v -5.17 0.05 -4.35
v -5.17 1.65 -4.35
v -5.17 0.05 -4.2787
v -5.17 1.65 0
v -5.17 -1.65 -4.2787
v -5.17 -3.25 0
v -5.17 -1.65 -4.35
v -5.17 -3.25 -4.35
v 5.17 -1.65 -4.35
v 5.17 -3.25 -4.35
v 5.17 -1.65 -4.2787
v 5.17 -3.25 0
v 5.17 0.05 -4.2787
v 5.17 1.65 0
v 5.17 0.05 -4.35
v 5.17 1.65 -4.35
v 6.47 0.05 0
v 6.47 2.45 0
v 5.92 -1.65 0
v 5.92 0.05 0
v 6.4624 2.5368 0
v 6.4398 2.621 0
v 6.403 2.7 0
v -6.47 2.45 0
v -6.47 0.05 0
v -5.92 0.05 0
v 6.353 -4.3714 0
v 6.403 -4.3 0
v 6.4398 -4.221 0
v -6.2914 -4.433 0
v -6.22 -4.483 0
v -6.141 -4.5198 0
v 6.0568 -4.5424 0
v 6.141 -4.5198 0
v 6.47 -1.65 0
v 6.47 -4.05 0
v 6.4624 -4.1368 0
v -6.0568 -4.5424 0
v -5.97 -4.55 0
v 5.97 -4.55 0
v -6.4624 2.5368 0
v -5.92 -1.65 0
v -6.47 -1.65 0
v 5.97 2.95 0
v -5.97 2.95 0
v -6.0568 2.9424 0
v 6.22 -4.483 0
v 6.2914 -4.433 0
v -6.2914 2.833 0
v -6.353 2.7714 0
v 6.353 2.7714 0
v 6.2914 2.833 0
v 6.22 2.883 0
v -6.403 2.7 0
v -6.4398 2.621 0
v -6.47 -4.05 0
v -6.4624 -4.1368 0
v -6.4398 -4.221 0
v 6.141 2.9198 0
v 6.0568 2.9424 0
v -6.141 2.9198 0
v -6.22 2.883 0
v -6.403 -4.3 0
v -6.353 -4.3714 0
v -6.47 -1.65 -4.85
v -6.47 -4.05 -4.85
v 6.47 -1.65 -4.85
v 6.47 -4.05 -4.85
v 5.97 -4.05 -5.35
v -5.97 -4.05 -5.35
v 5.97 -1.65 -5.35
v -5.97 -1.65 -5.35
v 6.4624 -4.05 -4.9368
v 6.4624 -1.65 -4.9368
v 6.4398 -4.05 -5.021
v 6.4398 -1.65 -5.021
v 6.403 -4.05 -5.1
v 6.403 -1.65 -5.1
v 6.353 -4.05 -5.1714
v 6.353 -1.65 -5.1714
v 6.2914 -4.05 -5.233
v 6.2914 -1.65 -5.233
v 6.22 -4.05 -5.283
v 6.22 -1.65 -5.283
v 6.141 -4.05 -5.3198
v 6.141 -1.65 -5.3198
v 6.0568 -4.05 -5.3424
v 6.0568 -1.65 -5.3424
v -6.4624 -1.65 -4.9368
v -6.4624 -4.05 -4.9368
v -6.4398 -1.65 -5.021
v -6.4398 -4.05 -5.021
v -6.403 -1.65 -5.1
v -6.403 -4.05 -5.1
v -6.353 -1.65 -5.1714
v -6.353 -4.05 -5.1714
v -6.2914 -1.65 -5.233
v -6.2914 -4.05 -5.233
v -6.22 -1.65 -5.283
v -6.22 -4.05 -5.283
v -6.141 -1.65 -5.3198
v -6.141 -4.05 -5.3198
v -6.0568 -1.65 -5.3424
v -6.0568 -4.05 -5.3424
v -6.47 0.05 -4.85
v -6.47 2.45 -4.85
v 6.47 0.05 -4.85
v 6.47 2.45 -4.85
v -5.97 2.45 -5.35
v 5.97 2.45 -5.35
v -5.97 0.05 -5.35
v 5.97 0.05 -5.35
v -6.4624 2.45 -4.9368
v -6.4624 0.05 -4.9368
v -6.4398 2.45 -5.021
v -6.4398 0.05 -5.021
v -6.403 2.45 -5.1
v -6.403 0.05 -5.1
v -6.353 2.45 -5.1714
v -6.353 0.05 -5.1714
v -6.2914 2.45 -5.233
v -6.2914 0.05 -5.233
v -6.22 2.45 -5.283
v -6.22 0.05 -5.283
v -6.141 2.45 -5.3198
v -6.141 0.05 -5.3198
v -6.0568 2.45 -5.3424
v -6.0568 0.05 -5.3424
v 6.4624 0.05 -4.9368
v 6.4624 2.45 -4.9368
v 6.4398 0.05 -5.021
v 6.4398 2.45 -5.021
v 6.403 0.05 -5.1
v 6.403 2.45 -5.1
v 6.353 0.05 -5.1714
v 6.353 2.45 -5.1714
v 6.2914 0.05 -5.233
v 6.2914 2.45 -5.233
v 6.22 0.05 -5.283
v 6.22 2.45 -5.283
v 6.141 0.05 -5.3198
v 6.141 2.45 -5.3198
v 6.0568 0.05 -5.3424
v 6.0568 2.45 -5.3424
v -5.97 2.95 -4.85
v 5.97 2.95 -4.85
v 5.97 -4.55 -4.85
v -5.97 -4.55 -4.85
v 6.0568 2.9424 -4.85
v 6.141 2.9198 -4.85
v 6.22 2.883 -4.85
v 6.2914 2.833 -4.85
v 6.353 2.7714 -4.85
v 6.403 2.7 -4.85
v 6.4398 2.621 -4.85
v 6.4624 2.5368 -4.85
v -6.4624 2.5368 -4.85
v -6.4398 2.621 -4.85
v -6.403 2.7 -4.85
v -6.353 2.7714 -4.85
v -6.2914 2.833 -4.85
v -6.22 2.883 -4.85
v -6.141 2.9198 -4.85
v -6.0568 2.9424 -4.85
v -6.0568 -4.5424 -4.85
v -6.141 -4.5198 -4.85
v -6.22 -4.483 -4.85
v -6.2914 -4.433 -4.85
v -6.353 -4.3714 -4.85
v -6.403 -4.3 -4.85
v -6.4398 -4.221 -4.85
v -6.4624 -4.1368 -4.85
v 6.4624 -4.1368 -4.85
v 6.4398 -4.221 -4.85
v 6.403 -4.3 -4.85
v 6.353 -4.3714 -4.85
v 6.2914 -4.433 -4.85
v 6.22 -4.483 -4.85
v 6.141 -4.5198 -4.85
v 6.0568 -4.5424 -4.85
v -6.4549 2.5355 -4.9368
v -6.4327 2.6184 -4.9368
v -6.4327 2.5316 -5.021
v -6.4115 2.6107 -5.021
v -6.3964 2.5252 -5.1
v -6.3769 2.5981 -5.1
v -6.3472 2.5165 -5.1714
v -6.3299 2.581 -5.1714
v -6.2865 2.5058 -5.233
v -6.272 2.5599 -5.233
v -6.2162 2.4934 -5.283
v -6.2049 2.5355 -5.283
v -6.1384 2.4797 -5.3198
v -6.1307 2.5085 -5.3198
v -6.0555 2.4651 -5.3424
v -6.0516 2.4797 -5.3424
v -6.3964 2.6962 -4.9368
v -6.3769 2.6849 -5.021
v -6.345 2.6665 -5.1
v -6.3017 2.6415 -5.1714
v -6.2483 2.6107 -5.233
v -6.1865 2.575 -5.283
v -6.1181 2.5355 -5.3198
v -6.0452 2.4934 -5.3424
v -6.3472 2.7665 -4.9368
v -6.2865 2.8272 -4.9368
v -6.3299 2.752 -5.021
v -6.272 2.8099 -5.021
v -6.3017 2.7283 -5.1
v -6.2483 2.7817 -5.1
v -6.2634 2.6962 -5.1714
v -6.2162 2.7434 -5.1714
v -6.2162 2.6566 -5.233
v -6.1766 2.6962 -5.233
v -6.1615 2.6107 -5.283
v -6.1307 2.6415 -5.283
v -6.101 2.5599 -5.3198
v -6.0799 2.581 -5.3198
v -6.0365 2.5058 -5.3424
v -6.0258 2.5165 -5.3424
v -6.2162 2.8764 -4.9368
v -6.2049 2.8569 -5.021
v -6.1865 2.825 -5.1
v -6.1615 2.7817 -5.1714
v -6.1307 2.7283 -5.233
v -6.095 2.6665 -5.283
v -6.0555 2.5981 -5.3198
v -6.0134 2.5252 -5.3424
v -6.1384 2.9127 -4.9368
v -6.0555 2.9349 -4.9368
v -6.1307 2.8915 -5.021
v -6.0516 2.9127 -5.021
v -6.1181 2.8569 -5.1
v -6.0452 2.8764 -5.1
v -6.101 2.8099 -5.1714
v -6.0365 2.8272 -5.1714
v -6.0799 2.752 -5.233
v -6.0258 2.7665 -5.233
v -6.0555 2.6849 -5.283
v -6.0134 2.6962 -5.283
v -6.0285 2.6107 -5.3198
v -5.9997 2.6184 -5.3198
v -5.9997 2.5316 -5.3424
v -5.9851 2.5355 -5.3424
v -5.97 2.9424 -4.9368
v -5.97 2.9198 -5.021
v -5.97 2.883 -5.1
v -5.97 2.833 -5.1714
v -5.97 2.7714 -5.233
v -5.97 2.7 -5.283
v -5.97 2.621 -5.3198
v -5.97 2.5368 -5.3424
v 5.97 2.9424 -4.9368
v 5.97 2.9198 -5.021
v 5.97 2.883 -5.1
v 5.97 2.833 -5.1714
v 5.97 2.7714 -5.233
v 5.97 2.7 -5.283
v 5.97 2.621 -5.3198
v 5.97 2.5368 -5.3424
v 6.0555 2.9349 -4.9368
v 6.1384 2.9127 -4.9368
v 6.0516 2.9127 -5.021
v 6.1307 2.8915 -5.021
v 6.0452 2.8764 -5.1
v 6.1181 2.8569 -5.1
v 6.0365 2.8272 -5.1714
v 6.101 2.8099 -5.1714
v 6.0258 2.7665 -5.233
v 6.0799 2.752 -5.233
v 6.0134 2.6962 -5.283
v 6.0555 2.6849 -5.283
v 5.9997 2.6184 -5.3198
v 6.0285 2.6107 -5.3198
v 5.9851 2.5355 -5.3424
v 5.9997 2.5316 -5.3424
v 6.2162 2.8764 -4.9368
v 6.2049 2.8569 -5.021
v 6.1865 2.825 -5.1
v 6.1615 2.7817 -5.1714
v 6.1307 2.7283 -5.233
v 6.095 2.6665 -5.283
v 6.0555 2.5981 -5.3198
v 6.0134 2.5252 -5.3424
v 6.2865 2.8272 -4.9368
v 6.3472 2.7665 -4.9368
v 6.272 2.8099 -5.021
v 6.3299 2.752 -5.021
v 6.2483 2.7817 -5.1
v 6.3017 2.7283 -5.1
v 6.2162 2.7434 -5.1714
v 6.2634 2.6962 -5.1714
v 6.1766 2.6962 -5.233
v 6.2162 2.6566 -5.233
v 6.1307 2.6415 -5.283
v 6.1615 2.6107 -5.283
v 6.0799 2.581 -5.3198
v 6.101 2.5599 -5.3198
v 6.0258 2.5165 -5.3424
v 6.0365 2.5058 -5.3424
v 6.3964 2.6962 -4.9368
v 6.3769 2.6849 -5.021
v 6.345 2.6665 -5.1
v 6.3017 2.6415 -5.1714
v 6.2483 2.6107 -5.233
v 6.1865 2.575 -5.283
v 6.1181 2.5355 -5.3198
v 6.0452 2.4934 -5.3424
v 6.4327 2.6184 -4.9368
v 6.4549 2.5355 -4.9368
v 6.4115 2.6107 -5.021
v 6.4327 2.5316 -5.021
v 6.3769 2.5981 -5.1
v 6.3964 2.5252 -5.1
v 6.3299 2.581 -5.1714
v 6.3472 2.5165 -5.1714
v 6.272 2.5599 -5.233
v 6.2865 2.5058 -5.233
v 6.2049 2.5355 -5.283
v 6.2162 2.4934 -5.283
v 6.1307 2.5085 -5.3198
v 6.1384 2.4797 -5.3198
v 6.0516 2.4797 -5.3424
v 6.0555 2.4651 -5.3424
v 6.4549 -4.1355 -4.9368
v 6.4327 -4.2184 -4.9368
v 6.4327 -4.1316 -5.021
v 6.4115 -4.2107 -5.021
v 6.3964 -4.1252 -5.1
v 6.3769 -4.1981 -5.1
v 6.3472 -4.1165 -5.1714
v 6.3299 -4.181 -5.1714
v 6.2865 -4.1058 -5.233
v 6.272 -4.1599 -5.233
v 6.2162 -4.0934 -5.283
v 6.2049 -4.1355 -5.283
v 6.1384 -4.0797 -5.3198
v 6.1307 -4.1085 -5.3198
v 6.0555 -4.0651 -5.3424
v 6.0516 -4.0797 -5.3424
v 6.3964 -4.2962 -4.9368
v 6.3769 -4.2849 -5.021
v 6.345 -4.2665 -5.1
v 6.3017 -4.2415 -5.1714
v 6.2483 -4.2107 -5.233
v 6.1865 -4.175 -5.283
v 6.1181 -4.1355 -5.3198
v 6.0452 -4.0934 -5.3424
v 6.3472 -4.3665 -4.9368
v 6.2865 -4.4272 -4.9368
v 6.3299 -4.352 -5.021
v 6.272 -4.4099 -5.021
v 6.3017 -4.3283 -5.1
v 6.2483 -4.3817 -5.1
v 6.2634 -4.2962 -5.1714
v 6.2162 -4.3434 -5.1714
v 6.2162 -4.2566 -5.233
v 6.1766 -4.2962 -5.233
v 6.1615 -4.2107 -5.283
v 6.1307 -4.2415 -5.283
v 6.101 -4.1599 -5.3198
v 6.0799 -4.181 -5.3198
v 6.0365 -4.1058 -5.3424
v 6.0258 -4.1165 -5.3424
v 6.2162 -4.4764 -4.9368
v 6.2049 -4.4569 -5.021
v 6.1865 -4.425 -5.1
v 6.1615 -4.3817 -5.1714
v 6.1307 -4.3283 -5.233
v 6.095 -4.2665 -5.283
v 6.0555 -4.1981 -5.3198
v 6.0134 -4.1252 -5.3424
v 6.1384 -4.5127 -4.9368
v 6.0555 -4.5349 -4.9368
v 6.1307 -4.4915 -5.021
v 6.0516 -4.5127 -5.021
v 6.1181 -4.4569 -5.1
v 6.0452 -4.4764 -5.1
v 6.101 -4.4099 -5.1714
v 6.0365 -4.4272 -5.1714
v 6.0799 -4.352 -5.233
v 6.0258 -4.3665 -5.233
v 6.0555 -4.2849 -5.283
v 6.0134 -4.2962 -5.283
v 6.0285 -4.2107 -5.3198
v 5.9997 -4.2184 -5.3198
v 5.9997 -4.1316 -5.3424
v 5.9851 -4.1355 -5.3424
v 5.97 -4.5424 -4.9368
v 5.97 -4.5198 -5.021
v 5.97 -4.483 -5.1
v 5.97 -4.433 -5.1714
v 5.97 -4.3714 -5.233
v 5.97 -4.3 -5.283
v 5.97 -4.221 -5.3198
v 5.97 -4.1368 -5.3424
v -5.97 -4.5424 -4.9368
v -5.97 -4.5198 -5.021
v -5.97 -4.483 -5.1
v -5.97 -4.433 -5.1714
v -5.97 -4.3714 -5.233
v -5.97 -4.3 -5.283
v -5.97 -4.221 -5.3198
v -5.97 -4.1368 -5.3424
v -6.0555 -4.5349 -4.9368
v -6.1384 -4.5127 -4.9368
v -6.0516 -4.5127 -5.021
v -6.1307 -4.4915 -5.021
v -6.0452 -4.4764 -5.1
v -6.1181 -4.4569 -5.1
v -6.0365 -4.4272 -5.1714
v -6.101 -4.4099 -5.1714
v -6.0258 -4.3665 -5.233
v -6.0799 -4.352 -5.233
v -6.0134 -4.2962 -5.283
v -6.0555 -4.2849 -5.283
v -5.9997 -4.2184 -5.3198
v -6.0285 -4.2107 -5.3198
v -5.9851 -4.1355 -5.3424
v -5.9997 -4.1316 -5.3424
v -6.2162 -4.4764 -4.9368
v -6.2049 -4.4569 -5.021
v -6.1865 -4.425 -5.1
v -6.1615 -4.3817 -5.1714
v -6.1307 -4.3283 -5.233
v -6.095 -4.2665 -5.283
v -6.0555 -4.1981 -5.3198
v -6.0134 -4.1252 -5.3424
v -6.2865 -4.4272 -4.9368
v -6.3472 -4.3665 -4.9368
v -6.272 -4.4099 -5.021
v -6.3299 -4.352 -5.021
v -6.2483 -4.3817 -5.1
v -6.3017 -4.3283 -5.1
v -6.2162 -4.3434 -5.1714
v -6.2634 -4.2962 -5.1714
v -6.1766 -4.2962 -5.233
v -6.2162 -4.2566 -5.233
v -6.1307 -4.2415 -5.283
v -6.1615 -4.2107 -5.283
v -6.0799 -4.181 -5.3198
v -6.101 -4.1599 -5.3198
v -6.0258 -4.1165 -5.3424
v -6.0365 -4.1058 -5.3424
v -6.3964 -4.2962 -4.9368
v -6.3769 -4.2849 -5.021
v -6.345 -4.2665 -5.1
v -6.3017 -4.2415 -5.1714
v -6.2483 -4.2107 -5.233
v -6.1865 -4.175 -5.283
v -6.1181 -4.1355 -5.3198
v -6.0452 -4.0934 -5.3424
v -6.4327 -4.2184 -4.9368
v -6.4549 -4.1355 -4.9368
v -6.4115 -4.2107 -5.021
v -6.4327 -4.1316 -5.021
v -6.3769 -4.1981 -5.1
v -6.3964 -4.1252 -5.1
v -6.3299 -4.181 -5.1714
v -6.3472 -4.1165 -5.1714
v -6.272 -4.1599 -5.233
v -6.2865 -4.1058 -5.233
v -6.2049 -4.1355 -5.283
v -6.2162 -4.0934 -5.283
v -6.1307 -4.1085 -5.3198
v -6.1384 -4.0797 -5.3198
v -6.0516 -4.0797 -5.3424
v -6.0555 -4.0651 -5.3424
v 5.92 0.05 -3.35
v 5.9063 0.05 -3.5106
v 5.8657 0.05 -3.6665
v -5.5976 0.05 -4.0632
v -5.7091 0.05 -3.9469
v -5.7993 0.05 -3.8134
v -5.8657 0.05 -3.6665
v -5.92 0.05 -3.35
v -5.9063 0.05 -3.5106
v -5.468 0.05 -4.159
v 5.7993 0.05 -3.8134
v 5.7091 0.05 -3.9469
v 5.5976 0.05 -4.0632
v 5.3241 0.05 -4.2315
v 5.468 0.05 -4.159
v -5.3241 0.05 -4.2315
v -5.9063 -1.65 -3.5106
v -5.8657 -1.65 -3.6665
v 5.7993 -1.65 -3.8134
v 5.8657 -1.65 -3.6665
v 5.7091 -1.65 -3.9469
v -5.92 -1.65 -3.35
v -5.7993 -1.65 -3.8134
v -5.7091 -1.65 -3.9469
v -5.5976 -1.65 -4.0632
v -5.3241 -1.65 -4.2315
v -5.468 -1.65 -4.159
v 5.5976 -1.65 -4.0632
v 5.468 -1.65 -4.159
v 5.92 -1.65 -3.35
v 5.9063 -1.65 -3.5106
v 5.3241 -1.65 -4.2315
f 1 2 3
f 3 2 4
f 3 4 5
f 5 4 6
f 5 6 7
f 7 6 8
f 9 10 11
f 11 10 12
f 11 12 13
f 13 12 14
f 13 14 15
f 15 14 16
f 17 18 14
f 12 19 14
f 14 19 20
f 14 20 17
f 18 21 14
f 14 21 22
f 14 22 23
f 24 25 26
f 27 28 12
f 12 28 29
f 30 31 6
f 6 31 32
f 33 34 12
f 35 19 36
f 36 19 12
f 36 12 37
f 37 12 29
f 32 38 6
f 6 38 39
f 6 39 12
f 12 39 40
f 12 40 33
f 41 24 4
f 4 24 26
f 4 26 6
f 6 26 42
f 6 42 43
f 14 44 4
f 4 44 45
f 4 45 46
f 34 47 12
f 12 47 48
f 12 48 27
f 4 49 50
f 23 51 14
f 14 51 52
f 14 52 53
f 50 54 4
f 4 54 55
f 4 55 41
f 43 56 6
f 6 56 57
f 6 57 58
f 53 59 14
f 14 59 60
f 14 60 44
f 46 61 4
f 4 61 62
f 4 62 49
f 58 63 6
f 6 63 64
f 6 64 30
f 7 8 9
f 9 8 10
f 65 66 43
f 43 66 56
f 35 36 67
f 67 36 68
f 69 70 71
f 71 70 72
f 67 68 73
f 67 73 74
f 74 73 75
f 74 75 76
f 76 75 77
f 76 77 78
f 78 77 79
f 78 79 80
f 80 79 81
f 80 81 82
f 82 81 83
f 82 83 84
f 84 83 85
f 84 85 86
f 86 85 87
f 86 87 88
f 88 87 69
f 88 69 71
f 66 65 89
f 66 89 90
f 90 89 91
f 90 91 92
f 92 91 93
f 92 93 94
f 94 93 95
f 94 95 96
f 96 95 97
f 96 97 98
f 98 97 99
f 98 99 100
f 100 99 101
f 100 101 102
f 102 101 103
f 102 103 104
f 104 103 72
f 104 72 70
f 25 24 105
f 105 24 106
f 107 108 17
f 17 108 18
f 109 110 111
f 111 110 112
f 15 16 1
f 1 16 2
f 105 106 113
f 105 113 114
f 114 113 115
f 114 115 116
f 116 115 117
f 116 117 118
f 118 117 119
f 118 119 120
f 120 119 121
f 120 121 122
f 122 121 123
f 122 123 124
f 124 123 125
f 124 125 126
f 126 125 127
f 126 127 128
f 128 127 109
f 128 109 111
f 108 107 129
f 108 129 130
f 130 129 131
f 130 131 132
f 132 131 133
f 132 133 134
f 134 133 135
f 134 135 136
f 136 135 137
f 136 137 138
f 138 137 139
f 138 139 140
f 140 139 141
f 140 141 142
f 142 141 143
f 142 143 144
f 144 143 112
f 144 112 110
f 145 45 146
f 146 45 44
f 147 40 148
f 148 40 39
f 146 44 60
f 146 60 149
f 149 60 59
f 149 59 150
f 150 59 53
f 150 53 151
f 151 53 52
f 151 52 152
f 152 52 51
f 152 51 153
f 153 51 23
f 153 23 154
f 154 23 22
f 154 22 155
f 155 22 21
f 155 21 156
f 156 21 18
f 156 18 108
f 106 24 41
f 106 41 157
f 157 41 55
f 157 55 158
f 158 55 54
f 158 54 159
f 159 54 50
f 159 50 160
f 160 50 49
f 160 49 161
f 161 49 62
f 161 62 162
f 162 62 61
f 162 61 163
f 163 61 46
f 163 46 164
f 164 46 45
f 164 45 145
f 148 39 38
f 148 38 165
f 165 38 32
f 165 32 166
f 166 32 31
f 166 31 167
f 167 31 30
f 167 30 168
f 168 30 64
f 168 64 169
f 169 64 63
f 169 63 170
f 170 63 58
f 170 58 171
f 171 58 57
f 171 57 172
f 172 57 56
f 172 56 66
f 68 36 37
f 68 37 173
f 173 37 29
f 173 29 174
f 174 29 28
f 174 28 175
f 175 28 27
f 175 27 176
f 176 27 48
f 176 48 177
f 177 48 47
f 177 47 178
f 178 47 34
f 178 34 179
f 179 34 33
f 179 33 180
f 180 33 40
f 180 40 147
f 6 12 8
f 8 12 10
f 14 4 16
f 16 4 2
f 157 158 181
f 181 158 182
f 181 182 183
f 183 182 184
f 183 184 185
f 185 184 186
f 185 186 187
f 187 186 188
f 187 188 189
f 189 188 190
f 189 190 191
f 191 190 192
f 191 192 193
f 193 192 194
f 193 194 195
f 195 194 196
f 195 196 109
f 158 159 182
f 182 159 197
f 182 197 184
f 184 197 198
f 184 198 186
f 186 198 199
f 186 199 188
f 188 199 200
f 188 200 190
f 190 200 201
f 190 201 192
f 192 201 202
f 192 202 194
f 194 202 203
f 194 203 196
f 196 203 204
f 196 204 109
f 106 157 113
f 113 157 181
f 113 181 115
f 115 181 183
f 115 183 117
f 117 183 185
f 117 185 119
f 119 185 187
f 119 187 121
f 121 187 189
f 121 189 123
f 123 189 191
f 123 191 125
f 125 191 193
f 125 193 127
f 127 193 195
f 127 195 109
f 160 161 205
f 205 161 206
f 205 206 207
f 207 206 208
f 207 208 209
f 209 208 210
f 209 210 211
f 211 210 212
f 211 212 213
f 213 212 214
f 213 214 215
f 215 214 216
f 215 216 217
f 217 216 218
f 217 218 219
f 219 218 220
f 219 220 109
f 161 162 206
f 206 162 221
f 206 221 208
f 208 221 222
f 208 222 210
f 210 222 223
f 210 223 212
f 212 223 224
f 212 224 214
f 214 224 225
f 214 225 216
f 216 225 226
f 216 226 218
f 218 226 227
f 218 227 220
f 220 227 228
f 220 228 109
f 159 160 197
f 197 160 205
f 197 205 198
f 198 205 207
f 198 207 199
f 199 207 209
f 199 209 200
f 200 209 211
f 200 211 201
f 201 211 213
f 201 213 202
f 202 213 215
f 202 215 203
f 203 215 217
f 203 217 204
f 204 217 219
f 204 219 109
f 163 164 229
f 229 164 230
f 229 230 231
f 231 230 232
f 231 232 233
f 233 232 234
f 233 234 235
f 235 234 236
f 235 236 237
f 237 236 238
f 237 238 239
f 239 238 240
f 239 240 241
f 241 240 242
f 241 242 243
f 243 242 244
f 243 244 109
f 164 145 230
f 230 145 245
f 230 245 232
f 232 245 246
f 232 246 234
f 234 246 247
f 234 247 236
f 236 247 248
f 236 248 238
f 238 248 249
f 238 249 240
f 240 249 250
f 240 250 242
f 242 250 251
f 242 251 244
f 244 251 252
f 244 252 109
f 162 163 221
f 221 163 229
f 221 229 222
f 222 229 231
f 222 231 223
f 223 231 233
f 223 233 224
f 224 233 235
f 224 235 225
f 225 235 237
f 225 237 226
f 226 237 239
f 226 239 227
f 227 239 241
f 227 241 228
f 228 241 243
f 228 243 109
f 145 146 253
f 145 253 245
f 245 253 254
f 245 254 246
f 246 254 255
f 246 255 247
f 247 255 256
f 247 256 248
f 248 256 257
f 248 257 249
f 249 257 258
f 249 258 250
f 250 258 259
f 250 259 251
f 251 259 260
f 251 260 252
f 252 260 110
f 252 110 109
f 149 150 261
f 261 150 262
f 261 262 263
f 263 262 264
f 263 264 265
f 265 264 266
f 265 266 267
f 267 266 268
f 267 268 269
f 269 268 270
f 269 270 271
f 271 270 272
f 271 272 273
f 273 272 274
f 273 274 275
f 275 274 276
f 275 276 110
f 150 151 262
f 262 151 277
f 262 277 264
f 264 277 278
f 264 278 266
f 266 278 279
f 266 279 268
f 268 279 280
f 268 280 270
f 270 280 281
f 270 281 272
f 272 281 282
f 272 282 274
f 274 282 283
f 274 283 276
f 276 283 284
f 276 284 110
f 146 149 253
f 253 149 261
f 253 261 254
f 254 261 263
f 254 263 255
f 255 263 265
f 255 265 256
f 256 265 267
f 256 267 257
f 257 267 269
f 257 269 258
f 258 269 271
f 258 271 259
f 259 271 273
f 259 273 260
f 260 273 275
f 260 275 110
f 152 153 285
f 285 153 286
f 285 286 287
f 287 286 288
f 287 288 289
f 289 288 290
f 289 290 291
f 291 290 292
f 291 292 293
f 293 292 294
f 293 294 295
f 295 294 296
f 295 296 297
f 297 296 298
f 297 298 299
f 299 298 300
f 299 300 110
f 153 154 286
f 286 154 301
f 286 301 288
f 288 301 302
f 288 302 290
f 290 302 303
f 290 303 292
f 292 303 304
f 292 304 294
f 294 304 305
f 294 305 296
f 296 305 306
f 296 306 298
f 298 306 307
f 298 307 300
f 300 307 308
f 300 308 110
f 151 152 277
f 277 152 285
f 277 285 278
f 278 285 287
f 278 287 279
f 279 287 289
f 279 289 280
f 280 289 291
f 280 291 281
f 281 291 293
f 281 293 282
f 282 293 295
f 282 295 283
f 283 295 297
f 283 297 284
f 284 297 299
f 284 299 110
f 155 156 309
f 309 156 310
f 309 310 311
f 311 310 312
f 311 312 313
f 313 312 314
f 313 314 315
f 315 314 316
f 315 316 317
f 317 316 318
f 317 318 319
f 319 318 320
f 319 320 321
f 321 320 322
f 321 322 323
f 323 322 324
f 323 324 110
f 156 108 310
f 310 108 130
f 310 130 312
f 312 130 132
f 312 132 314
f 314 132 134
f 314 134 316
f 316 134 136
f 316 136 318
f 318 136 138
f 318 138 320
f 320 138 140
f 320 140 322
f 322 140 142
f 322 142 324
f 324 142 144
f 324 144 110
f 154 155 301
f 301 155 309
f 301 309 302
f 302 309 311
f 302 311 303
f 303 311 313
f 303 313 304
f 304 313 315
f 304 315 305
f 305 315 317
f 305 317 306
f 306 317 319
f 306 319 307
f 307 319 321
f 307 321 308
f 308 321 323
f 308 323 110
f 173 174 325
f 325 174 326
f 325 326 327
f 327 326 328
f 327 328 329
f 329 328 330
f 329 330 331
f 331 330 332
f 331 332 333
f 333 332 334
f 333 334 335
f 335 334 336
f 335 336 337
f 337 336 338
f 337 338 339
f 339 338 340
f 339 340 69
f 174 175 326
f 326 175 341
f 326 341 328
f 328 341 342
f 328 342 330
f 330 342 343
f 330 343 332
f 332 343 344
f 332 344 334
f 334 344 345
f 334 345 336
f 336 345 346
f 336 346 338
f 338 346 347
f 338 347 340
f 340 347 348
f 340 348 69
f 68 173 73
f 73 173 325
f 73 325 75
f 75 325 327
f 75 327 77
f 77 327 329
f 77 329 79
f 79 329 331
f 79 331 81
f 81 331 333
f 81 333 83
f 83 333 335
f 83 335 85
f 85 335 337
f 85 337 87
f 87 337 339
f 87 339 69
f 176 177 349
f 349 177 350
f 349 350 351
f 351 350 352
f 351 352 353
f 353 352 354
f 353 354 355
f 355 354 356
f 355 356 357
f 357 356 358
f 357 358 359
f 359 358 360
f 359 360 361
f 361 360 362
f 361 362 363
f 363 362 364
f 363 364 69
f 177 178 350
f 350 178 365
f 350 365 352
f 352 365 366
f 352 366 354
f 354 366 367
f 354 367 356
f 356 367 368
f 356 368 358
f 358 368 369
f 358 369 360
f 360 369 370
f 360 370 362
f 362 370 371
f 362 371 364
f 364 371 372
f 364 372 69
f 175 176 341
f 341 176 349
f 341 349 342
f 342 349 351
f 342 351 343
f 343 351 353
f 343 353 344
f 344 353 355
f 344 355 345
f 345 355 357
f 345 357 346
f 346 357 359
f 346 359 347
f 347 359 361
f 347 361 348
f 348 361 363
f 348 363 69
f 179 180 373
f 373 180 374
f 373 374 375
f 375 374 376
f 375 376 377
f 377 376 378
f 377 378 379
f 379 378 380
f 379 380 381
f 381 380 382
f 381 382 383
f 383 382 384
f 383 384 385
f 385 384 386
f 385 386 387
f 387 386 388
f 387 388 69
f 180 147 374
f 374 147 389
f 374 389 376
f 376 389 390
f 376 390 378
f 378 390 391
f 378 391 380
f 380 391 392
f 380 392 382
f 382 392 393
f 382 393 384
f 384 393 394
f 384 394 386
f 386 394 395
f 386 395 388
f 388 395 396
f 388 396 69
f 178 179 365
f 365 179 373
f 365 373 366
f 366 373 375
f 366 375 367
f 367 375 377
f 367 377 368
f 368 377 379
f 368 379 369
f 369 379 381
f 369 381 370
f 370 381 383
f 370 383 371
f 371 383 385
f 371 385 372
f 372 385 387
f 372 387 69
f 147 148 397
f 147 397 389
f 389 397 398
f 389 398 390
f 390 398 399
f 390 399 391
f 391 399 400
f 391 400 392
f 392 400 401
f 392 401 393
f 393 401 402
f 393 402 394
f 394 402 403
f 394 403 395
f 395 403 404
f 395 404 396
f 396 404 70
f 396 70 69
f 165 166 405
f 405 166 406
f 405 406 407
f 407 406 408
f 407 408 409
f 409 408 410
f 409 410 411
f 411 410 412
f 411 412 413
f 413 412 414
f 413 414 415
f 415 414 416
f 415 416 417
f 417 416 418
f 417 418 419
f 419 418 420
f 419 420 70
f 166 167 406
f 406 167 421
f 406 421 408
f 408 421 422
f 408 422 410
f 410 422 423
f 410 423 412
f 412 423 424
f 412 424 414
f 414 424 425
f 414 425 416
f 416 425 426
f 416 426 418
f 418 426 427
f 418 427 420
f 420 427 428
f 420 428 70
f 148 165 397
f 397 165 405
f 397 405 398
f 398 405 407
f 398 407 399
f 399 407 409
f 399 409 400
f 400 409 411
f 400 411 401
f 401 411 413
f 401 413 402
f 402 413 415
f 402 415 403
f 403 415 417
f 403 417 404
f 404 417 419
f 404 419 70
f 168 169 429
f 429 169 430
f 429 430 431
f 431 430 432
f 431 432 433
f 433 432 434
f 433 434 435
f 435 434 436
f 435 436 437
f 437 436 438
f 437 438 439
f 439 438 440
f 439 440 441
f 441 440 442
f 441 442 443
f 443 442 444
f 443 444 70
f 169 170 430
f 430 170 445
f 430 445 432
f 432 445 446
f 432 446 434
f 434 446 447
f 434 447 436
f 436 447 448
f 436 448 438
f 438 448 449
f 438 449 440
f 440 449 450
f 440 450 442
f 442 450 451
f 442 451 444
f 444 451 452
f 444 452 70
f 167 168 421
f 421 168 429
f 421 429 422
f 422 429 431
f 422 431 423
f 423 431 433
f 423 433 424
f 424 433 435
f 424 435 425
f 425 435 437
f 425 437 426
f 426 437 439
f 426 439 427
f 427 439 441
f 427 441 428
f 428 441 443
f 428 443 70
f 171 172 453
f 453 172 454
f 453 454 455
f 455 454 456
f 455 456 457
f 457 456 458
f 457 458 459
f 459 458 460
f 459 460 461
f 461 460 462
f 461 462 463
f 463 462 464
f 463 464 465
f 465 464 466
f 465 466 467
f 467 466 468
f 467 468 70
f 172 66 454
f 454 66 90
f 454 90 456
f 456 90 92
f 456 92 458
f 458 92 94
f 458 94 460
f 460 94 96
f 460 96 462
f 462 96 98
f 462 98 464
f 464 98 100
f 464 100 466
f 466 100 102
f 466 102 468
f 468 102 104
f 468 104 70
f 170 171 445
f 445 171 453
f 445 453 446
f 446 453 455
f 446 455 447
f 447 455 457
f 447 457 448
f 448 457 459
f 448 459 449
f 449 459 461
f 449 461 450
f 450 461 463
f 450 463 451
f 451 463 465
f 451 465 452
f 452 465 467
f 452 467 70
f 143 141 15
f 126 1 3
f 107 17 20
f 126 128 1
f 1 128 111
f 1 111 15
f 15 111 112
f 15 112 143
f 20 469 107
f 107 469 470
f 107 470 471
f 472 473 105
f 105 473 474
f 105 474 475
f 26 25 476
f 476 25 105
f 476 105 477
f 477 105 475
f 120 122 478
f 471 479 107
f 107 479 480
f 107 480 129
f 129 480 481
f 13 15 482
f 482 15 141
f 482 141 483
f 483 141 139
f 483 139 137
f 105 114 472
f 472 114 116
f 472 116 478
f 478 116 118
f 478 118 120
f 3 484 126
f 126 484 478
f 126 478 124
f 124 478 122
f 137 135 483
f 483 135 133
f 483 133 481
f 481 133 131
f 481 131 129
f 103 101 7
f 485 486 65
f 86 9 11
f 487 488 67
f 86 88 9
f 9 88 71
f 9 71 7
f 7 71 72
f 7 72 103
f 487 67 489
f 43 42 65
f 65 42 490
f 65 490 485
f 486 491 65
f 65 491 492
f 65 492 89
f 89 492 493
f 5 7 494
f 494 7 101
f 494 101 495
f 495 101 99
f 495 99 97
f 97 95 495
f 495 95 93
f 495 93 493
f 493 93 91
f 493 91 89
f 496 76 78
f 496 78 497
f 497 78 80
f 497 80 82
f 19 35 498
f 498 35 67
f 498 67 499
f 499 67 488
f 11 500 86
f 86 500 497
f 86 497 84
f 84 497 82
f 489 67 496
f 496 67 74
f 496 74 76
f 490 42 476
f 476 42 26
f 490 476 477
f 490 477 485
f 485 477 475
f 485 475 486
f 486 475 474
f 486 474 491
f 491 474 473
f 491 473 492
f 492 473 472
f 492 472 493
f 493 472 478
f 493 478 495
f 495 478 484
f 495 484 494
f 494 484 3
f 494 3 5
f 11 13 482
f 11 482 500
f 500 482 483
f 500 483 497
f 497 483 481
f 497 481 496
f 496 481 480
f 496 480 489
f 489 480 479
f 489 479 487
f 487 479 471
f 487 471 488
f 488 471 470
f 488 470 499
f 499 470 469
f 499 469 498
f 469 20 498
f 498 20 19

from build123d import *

# Parameters (mm, degrees)
SKETCH1_W                               = 12.94
SKETCH1_H                               = 7.5
BOSS_EXTRUDE1_DEPTH                     = 5.35
FILLET1_R                               = 0.5
SKETCH2_W                               = 10.34
SKETCH2_H                               = 4.9
CUT_EXTRUDE1_DEPTH                      = 4.35
SKETCH3_W                               = 10.34
SKETCH3_H                               = 1.6
CUT_EXTRUDE2_DEPTH                      = 2
SKETCH4_OUTSIDE_W                       = 18.116
SKETCH4_OUTSIDE_H                       = 10.526
CUT_EXTRUDE3_DEPTH                      = 1.6
FILLET2_R                               = 0.5
CUT_EXTRUDE4_CLEARANCE_FOR_TOP_DEPTH    = 0.05
CUT_EXTRUDE5_CLEARANCE_FOR_BOTTOM_DEPTH = 0.05
CUT_EXTRUDE6_CLEARANCE_ON_SIDES_DEPTH   = 1.7


with BuildPart() as part:
    # Sketch1 → Boss-Extrude1 (new body)
    with BuildSketch(Plane.XY):
        with Locations((0, -0.8)):
            Rectangle(SKETCH1_W, SKETCH1_H)
    extrude(amount=-BOSS_EXTRUDE1_DEPTH)

    # Fillet1
    fillet1_edges = [part.edges().sort_by_distance(p)[0] for p in [
        (-6.47, 2.95, -2.675),
        (6.47, 2.95, -2.675),
        (6.47, -4.55, -2.675),
        (-6.47, -4.55, -2.675),
    ]]
    fillet(fillet1_edges, radius=FILLET1_R)

    # Sketch2 → Cut-Extrude1 (cut)
    with BuildSketch(Plane.XY):
        with Locations((0, -0.8)):
            Rectangle(SKETCH2_W, SKETCH2_H)
    extrude(amount=-CUT_EXTRUDE1_DEPTH, mode=Mode.SUBTRACT)

    # Sketch3 → Cut-Extrude2 (cut, through all)
    with BuildSketch(Plane.XY.offset(-4.35)):
        with Locations((0, -0.8)):
            Rectangle(SKETCH3_W, SKETCH3_H)
    extrude(amount=-CUT_EXTRUDE2_DEPTH, mode=Mode.SUBTRACT)

    # Sketch4 outside → Cut-Extrude3 (cut)
    with BuildSketch(Plane.XZ.offset(1.6)):
        with Locations((0, -2.675)):
            Rectangle(SKETCH4_OUTSIDE_W, SKETCH4_OUTSIDE_H)
        with BuildLine():
            Line((5.97, -3.35), (5.97, 0))
            Line((5.97, 0), (-5.97, 0))
            Line((-5.97, 0), (-5.97, -3.35))
            ThreePointArc((-5.97, -3.35), (-5.677106781, -4.057106781), (-4.97, -4.35))
            Line((-4.97, -4.35), (-4.27, -4.35))
            Line((-4.27, -4.35), (4.27, -4.35))
            Line((4.27, -4.35), (4.97, -4.35))
            ThreePointArc((4.97, -4.35), (5.677106781, -4.057106781), (5.97, -3.35))
        make_face(mode=Mode.SUBTRACT)
    extrude(amount=-CUT_EXTRUDE3_DEPTH, mode=Mode.SUBTRACT)

    # Fillet2
    fillet2_edges = [part.edges().sort_by_distance(p)[0] for p in [
        (6.47, -2.825, -5.35),
        (0, 2.95, -5.35),
        (-6.47, 1.225, -5.35),
        (0, -4.55, -5.35),
        (6.323553391, -4.403553391, -5.35),
        (-6.323553391, -4.403553391, -5.35),
        (-6.323553391, 2.803553391, -5.35),
        (6.323553391, 2.803553391, -5.35),
        (6.47, 1.225, -5.35),
        (-6.47, -2.825, -5.35),
    ]]
    fillet(fillet2_edges, radius=FILLET2_R)

    # Sketch5 → Cut-Extrude4 - clearance for top (cut)
    with BuildSketch(Plane.XZ):
        with BuildLine():
            Line((-5.97, -5.35), (5.97, -5.35))
            ThreePointArc((5.97, -5.35), (6.323553391, -5.203553391), (6.47, -4.85))
            Line((6.47, -4.85), (6.47, 0))
            Line((6.47, 0), (5.97, 0))
            Line((5.97, 0), (5.97, -3.35))
            ThreePointArc((5.97, -3.35), (5.744596669, -3.982455532), (5.17, -4.329795897))
            Line((5.17, -4.329795897), (5.17, -4.35))
            Line((5.17, -4.35), (-5.17, -4.35))
            Line((-5.17, -4.35), (-5.17, -4.329795897))
            ThreePointArc((-5.17, -4.329795897), (-5.744596669, -3.982455532), (-5.97, -3.35))
            Line((-5.97, -3.35), (-5.97, 0))
            Line((-5.97, 0), (-6.47, 0))
            Line((-6.47, 0), (-6.47, -4.85))
            ThreePointArc((-6.47, -4.85), (-6.323553391, -5.203553391), (-5.97, -5.35))
        make_face()
    extrude(amount=-CUT_EXTRUDE4_CLEARANCE_FOR_TOP_DEPTH, mode=Mode.SUBTRACT)

    # Sketch6 → Cut-Extrude5 - clearance for bottom (cut)
    with BuildSketch(Plane(origin=(0, -1.6, 0), x_dir=(1, 0, 0), z_dir=(0, 1, 0))):
        with BuildLine():
            Line((5.97, 5.35), (-5.97, 5.35))
            ThreePointArc((-5.97, 5.35), (-6.323553391, 5.203553391), (-6.47, 4.85))
            Line((-6.47, 4.85), (-6.47, 0))
            Line((-6.47, 0), (-5.97, 0))
            Line((-5.97, 0), (-5.97, 3.35))
            ThreePointArc((-5.97, 3.35), (-5.744596669, 3.982455532), (-5.17, 4.329795897))
            Line((-5.17, 4.329795897), (-5.17, 4.35))
            Line((-5.17, 4.35), (5.17, 4.35))
            Line((5.17, 4.35), (5.17, 4.329795897))
            ThreePointArc((5.17, 4.329795897), (5.744596669, 3.982455532), (5.97, 3.35))
            Line((5.97, 3.35), (5.97, 0))
            Line((5.97, 0), (6.47, 0))
            Line((6.47, 0), (6.47, 4.85))
            ThreePointArc((6.47, 4.85), (6.323553391, 5.203553391), (5.97, 5.35))
        make_face()
    extrude(amount=-CUT_EXTRUDE5_CLEARANCE_FOR_BOTTOM_DEPTH, mode=Mode.SUBTRACT)

    # Sketch7 → Cut-Extrude6 - clearance on sides (cut)
    with BuildSketch(Plane.XZ.offset(-0.05)):
        with BuildLine():
            Line((-5.97, -5.4), (5.97, -5.4))
            ThreePointArc((5.97, -5.4), (6.35890873, -5.23890873), (6.52, -4.85))
            Line((6.52, -4.85), (6.52, 0.05))
            Line((6.52, 0.05), (5.92, 0.05))
            Line((5.92, 0.05), (5.92, -3.35))
            ThreePointArc((5.92, -3.35), (5.692841615, -3.9664414), (5.12, -4.288083152))
            Line((5.12, -4.288083152), (5.12, -4.3))
            Line((5.12, -4.3), (-5.12, -4.3))
            Line((-5.12, -4.3), (-5.12, -4.288083152))
            ThreePointArc((-5.12, -4.288083152), (-5.692841615, -3.9664414), (-5.92, -3.35))
            Line((-5.92, -3.35), (-5.92, 0.05))
            Line((-5.92, 0.05), (-6.52, 0.05))
            Line((-6.52, 0.05), (-6.52, -4.85))
            ThreePointArc((-6.52, -4.85), (-6.35890873, -5.23890873), (-5.97, -5.4))
        make_face()
    extrude(amount=CUT_EXTRUDE6_CLEARANCE_ON_SIDES_DEPTH, mode=Mode.SUBTRACT)


solid = part.part
